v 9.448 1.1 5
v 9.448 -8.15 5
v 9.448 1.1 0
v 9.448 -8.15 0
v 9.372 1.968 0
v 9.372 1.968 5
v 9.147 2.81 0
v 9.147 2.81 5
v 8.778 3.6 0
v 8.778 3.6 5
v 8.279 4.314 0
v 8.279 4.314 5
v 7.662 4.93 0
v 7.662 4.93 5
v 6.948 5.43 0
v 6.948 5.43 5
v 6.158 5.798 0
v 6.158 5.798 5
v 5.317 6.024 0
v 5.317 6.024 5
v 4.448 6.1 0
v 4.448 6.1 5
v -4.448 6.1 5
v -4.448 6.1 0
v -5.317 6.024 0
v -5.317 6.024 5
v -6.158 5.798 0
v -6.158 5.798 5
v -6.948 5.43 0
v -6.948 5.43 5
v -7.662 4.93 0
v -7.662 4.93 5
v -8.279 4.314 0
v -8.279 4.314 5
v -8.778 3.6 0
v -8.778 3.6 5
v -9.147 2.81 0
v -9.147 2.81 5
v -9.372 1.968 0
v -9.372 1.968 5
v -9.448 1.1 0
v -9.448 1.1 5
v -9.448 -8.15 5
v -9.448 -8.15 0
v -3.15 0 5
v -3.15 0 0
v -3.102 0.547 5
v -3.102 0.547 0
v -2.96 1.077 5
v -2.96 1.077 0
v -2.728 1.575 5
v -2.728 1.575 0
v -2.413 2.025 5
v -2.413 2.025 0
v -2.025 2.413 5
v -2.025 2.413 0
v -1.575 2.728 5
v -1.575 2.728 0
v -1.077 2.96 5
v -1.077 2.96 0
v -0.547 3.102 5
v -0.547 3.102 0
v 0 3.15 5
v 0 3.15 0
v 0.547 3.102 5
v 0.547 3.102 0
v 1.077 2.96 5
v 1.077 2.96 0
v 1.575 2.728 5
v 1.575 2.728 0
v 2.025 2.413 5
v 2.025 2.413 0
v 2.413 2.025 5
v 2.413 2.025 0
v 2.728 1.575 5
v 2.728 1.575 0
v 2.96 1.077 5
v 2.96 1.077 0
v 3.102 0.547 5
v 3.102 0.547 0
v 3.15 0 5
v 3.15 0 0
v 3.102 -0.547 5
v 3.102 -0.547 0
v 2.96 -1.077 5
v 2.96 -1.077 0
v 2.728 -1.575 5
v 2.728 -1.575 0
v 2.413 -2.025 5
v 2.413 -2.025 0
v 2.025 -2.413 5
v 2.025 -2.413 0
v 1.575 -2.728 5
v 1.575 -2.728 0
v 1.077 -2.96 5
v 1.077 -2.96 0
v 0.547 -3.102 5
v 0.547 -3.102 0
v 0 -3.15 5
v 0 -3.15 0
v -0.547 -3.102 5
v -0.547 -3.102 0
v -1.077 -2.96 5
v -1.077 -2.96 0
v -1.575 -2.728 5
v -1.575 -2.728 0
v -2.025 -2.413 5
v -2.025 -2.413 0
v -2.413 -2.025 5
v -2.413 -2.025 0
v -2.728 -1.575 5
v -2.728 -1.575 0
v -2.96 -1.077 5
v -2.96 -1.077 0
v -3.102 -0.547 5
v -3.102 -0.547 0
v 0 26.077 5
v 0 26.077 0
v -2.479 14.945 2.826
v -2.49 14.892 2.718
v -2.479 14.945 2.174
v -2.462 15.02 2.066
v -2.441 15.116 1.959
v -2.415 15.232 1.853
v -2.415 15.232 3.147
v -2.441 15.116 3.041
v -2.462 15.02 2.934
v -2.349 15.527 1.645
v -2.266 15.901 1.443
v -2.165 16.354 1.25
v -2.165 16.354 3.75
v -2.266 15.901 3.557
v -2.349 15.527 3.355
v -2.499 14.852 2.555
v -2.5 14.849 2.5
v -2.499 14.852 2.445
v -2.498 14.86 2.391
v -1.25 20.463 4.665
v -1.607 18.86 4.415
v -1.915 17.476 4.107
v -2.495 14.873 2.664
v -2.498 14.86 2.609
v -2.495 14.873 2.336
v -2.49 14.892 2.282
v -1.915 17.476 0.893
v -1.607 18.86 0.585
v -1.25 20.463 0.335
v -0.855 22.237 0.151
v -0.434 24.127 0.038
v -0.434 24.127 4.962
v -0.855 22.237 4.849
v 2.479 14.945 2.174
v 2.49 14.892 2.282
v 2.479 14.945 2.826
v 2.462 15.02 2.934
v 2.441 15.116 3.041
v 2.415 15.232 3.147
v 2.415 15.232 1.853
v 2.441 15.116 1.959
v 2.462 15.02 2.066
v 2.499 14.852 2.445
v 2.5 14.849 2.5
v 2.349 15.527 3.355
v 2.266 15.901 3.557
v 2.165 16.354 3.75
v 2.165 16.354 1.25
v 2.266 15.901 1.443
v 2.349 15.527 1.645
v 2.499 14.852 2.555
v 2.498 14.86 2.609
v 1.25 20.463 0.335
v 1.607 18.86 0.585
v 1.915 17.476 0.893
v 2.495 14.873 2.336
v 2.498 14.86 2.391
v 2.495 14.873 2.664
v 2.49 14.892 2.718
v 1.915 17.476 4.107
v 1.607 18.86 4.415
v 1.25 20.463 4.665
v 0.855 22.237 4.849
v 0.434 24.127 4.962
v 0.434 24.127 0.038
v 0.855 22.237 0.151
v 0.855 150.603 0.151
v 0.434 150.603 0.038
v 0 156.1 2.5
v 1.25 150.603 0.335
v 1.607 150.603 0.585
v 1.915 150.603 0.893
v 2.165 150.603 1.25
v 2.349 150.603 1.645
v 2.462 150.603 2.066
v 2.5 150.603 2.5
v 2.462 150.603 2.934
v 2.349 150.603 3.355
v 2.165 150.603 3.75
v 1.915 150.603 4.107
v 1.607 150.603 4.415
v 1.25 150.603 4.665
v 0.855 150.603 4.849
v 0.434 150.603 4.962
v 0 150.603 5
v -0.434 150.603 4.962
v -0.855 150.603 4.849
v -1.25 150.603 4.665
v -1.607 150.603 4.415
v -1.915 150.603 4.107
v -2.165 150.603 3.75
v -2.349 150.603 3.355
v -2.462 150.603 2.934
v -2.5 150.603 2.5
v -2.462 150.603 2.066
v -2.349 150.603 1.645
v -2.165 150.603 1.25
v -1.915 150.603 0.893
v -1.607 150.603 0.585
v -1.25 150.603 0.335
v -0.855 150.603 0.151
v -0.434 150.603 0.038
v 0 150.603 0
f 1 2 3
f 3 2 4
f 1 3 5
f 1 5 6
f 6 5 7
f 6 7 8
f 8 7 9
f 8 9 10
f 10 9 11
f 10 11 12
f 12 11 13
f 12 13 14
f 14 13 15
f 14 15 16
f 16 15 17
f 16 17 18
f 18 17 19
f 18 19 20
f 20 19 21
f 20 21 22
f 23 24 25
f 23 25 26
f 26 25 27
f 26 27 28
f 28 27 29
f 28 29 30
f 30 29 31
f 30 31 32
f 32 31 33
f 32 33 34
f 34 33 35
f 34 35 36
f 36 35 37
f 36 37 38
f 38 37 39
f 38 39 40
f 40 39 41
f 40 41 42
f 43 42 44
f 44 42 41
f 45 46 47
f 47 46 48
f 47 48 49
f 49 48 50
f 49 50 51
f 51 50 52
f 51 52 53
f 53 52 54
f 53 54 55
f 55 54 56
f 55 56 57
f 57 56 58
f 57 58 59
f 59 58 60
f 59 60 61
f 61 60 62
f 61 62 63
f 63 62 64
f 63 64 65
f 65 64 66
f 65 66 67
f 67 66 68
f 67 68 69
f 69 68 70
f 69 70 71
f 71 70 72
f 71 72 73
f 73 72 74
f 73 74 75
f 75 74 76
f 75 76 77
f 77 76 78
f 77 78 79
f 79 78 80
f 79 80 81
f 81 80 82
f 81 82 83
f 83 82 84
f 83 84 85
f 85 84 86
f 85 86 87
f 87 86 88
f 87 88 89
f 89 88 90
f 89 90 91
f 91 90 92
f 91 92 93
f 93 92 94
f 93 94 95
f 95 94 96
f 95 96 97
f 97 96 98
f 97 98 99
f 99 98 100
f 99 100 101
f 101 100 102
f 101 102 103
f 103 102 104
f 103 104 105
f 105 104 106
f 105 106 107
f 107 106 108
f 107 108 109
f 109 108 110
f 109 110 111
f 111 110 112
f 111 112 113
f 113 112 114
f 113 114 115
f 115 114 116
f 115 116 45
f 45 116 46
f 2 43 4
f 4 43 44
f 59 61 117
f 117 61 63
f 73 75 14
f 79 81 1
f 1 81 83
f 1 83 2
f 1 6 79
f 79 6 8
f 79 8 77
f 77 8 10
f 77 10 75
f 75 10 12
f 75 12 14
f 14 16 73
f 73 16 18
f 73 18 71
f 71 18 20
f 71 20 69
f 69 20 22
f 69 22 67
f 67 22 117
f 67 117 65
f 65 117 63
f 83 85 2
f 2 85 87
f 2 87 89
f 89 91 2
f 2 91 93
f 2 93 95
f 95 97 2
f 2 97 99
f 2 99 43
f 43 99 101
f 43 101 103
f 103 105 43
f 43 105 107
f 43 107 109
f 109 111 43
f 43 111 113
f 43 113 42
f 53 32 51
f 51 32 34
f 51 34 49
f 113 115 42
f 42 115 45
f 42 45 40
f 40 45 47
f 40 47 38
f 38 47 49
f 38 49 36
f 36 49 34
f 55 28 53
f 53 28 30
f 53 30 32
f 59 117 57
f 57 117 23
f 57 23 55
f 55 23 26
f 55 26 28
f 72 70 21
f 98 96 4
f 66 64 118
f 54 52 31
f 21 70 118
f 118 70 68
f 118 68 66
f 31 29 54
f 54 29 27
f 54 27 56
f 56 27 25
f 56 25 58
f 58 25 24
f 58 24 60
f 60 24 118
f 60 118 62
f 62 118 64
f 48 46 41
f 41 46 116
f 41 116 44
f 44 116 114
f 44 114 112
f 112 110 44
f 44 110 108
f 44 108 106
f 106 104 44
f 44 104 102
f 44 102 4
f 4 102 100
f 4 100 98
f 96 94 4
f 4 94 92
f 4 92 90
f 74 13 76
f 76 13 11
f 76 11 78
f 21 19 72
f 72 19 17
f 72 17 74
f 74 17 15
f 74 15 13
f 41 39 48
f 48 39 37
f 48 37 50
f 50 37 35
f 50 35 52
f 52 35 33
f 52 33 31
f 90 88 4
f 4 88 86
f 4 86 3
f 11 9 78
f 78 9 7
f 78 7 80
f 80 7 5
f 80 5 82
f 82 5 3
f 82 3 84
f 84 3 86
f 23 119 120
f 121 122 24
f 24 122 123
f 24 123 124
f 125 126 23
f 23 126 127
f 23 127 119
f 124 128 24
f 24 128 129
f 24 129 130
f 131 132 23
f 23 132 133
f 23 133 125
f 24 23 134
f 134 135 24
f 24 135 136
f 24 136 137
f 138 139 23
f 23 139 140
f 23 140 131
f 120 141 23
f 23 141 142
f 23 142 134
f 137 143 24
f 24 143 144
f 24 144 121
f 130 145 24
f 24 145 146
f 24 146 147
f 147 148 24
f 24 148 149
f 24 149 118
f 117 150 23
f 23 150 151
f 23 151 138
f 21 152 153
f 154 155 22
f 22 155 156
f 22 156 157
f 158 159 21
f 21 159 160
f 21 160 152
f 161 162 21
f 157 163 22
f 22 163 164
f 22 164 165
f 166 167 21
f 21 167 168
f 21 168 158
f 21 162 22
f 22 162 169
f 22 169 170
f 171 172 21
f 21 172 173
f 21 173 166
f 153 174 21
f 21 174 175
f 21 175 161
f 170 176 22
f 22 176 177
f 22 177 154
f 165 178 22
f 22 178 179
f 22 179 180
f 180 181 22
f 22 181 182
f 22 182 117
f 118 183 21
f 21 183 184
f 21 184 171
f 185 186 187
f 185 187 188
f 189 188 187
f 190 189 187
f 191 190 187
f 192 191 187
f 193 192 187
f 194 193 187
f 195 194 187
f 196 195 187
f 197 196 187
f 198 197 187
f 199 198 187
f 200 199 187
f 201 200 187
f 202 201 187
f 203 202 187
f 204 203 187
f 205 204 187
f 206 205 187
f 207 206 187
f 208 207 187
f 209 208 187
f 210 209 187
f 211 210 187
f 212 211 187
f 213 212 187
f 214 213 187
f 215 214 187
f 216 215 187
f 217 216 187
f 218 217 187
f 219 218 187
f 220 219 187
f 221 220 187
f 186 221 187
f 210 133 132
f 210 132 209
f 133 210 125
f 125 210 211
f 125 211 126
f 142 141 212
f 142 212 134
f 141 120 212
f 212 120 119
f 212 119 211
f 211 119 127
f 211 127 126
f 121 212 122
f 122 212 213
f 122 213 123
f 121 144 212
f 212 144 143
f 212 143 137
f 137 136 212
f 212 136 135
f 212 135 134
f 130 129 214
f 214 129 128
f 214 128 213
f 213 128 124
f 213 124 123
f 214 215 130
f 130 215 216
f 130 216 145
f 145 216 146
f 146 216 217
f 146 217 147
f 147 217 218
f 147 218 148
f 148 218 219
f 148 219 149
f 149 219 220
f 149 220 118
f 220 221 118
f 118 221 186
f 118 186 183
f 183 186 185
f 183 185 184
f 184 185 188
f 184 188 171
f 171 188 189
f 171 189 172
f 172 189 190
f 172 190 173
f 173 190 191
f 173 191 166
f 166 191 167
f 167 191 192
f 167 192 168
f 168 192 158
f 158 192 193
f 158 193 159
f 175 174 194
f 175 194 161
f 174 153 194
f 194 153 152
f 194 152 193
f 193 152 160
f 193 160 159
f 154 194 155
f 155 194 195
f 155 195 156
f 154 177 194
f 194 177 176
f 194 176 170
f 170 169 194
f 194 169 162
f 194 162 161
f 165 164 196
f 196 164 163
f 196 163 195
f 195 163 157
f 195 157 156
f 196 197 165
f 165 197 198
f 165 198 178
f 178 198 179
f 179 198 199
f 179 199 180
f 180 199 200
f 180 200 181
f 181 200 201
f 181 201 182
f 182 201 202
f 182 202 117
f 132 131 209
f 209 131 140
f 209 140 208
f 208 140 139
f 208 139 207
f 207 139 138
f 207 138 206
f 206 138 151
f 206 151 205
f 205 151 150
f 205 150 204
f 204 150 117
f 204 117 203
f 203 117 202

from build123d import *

# Parameters (mm, degrees)
SKETCH3_R           = 3.15
BOSS_EXTRUDE1_DEPTH = 5
SKETCH4_R           = 2.5
BOSS_EXTRUDE2_DEPTH = 150
BOSS_EXTRUDE3_DEPTH = 5


with BuildPart() as part:
    # Sketch3 → Boss-Extrude1 (new body)
    with BuildSketch(Plane.XY):
        with BuildLine():
            ThreePointArc((9.448282799, 1.1), (7.983816705, 4.635533906), (4.448282799, 6.1))
            Line((4.448282799, 6.1), (-4.448282849, 6.1))
            ThreePointArc((-4.448282849, 6.1), (-7.983816755, 4.635533906), (-9.448282849, 1.1))
            Line((-9.448282849, 1.1), (-9.448282849, -8.15))
            Line((-9.448282849, -8.15), (9.448282799, -8.15))
            Line((9.448282799, -8.15), (9.448282799, 1.1))
        make_face()
        Circle(SKETCH3_R, mode=Mode.SUBTRACT)
    extrude(amount=BOSS_EXTRUDE1_DEPTH)

    # Sketch4 → Boss-Extrude2 (add)
    with BuildSketch(Plane(origin=(0, 6.1, 0), x_dir=(1, 0, 0), z_dir=(0, 1, 0))):
        with Locations(Location((0, -2.5, 0), (0, 0, 270))):
            Circle(SKETCH4_R)
    extrude(amount=BOSS_EXTRUDE2_DEPTH)

    # Sketch6 → Cut-Revolve2 (revolve, cut)
    with BuildSketch(Plane(origin=(0, 0, 0), x_dir=(0, 0, -1), z_dir=(1, 0, 0))):
        Polygon((-2.5, 157.475466352), (-2.5, 156.1), (0, 150.602856099), (2.064701239, 157.475466352), align=None)
    revolve(axis=Axis((0, 156.1, 2.5), (0, 1, 0)), mode=Mode.SUBTRACT)

    # Sketch7 → Boss-Extrude3 (add)
    with BuildSketch(Plane(origin=(0, 0, 0), x_dir=(-1, 0, 0), z_dir=(0, 0, -1))):
        Polygon((0, 26.076539937), (4.448282849, 6.1), (-4.448282799, 6.1), align=None)
    extrude(amount=-BOSS_EXTRUDE3_DEPTH)


solid = part.part
